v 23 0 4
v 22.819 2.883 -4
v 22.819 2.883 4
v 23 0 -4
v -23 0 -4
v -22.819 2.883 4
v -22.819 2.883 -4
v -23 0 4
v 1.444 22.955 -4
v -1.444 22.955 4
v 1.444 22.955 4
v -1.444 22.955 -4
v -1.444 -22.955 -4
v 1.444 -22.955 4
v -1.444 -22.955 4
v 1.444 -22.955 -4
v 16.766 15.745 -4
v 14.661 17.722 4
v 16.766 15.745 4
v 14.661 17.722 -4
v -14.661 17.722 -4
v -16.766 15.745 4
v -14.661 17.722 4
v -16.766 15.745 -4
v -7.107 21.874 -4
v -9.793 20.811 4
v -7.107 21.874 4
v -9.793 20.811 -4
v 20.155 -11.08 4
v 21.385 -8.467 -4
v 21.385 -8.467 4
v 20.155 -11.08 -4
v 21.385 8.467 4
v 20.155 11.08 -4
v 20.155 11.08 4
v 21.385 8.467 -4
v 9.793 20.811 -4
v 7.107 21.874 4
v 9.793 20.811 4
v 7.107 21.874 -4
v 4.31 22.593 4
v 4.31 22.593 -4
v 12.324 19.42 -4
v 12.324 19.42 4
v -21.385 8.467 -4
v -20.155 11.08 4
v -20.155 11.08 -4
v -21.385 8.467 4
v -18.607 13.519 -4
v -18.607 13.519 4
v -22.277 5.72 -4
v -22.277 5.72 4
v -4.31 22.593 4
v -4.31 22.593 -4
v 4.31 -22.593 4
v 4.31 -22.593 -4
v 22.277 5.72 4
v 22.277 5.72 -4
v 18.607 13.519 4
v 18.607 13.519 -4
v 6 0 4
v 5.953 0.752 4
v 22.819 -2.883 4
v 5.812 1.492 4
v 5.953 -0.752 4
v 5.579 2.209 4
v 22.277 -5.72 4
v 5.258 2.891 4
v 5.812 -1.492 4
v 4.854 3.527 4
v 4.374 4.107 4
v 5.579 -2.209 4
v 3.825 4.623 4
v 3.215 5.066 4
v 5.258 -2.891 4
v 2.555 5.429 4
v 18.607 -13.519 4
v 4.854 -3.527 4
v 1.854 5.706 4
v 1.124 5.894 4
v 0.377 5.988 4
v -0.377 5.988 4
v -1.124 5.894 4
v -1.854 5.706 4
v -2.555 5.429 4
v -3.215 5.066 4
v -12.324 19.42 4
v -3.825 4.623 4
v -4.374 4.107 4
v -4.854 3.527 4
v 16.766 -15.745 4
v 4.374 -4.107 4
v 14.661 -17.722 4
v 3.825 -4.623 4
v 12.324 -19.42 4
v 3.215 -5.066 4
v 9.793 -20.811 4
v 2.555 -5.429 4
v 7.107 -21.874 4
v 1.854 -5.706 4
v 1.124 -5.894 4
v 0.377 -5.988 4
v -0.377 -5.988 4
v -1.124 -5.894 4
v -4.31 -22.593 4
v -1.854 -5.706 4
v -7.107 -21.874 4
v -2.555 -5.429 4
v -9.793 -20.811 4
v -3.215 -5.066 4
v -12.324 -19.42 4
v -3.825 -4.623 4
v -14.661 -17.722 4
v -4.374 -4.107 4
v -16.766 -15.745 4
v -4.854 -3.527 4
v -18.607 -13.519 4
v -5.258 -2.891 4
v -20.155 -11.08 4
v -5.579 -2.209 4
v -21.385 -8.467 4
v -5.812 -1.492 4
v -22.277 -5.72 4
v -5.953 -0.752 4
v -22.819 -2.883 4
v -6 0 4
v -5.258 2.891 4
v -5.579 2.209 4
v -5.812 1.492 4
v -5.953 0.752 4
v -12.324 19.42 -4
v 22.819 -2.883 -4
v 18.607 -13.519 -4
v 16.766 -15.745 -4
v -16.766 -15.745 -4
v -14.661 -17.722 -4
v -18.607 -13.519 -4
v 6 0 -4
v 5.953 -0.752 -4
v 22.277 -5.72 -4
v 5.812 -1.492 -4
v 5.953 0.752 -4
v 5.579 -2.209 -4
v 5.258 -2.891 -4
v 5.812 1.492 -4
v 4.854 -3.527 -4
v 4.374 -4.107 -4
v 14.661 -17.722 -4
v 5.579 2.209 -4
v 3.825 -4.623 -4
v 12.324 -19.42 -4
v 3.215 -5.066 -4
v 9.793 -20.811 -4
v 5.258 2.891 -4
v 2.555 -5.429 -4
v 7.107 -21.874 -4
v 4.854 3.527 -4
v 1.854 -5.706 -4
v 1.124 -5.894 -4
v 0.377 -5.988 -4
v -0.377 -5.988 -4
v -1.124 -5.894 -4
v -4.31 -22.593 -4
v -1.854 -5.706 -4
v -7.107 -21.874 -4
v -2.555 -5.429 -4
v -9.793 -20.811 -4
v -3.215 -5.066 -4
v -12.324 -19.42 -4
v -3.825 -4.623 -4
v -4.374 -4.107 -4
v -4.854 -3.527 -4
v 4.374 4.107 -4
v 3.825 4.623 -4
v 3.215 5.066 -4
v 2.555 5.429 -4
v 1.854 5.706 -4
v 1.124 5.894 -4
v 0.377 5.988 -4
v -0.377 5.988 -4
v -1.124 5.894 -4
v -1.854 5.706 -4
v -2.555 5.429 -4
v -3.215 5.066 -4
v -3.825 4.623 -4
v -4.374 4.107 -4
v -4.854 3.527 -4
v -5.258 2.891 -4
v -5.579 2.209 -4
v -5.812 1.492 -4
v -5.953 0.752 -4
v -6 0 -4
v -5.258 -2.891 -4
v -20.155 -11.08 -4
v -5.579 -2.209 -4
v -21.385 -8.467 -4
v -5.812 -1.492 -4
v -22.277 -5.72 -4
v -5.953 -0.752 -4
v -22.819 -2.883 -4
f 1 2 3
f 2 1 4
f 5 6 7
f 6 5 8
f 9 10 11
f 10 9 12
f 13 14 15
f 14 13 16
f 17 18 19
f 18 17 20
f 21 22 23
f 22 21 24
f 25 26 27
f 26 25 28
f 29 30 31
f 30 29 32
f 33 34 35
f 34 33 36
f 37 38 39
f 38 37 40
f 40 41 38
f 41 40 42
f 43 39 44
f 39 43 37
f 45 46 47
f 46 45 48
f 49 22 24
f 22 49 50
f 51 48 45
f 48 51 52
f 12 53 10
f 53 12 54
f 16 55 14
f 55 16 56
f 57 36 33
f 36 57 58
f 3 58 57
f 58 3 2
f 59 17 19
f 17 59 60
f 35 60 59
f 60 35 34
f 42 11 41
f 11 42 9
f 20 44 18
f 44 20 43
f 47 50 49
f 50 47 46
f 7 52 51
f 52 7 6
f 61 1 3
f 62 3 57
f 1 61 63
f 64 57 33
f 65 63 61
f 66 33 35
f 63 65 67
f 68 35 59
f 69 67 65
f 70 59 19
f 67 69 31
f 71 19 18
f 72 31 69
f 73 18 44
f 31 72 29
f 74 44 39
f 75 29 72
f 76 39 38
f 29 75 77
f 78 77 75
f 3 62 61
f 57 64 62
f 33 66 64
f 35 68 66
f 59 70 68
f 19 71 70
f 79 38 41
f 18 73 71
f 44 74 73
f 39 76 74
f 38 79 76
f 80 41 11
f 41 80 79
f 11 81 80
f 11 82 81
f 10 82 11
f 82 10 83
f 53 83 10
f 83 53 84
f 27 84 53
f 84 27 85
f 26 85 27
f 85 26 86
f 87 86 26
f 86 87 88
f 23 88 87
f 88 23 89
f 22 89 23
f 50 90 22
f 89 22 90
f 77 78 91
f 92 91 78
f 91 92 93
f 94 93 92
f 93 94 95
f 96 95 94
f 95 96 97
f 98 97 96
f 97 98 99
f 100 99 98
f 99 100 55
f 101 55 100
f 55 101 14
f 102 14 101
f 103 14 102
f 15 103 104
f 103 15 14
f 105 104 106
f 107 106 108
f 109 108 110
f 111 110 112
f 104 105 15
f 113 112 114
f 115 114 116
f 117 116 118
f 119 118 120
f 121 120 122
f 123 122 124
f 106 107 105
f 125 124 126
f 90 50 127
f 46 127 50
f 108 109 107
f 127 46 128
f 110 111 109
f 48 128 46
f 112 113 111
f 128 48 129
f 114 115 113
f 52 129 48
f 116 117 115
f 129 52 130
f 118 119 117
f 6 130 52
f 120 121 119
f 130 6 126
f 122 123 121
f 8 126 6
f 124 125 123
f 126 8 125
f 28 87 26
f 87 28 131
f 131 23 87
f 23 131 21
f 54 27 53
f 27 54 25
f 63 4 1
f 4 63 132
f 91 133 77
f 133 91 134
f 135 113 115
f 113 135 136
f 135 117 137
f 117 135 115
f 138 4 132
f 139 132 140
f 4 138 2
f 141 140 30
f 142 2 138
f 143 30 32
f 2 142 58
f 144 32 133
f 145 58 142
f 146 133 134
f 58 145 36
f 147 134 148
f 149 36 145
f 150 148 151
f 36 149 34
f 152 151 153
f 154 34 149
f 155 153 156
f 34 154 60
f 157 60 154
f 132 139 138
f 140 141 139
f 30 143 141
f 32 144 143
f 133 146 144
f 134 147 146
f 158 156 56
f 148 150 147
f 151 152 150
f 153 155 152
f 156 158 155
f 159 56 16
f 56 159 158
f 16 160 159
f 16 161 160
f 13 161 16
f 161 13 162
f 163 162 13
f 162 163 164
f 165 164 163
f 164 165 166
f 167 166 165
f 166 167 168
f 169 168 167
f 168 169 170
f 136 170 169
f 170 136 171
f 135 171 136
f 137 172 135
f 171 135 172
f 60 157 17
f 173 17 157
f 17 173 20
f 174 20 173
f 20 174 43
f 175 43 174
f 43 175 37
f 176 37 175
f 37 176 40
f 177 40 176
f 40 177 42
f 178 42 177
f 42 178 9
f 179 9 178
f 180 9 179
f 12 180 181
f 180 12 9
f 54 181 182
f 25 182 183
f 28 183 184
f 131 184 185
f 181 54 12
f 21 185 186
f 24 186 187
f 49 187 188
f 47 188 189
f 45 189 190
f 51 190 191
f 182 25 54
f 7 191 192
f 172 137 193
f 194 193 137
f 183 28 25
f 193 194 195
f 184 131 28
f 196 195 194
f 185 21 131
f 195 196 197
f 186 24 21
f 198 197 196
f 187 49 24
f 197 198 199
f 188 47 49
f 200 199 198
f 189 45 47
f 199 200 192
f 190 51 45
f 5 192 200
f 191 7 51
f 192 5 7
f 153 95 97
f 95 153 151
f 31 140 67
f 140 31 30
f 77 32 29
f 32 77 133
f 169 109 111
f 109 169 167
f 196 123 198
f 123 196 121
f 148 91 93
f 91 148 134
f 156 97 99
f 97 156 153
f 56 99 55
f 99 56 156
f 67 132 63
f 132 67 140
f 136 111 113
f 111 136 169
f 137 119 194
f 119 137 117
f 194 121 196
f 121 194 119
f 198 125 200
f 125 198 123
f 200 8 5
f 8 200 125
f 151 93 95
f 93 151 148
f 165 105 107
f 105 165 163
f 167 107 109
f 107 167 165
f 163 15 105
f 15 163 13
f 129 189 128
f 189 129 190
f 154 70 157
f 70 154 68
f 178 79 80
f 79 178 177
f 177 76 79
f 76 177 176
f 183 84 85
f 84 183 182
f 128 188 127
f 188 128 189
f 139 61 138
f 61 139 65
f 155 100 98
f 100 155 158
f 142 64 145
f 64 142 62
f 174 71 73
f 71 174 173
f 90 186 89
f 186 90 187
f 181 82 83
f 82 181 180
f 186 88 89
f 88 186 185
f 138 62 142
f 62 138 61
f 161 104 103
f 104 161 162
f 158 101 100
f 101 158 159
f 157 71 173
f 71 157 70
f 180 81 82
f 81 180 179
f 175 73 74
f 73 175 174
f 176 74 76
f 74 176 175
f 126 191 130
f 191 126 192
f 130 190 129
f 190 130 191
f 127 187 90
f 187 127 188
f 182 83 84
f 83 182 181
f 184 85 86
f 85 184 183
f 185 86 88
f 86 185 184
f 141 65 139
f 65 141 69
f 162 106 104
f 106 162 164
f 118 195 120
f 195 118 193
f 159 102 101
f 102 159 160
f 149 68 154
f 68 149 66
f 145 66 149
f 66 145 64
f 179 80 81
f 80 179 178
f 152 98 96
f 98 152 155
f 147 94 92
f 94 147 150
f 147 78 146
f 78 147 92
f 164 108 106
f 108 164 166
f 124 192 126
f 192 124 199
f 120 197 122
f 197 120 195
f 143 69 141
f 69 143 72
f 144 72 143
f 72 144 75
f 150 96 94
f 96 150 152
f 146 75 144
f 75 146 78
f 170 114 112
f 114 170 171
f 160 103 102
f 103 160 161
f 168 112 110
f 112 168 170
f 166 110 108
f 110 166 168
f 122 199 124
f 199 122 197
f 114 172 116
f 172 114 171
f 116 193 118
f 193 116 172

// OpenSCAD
$fn = 50;


difference() {
	union() {
		translate(v = [0, 0, -4.0000000000]) {
			cylinder(h = 8, r = 23.0000000000);
		}
	}
	union() {
		translate(v = [0, 0, -100.0000000000]) {
			cylinder(h = 200, r = 6);
		}
	}
}
